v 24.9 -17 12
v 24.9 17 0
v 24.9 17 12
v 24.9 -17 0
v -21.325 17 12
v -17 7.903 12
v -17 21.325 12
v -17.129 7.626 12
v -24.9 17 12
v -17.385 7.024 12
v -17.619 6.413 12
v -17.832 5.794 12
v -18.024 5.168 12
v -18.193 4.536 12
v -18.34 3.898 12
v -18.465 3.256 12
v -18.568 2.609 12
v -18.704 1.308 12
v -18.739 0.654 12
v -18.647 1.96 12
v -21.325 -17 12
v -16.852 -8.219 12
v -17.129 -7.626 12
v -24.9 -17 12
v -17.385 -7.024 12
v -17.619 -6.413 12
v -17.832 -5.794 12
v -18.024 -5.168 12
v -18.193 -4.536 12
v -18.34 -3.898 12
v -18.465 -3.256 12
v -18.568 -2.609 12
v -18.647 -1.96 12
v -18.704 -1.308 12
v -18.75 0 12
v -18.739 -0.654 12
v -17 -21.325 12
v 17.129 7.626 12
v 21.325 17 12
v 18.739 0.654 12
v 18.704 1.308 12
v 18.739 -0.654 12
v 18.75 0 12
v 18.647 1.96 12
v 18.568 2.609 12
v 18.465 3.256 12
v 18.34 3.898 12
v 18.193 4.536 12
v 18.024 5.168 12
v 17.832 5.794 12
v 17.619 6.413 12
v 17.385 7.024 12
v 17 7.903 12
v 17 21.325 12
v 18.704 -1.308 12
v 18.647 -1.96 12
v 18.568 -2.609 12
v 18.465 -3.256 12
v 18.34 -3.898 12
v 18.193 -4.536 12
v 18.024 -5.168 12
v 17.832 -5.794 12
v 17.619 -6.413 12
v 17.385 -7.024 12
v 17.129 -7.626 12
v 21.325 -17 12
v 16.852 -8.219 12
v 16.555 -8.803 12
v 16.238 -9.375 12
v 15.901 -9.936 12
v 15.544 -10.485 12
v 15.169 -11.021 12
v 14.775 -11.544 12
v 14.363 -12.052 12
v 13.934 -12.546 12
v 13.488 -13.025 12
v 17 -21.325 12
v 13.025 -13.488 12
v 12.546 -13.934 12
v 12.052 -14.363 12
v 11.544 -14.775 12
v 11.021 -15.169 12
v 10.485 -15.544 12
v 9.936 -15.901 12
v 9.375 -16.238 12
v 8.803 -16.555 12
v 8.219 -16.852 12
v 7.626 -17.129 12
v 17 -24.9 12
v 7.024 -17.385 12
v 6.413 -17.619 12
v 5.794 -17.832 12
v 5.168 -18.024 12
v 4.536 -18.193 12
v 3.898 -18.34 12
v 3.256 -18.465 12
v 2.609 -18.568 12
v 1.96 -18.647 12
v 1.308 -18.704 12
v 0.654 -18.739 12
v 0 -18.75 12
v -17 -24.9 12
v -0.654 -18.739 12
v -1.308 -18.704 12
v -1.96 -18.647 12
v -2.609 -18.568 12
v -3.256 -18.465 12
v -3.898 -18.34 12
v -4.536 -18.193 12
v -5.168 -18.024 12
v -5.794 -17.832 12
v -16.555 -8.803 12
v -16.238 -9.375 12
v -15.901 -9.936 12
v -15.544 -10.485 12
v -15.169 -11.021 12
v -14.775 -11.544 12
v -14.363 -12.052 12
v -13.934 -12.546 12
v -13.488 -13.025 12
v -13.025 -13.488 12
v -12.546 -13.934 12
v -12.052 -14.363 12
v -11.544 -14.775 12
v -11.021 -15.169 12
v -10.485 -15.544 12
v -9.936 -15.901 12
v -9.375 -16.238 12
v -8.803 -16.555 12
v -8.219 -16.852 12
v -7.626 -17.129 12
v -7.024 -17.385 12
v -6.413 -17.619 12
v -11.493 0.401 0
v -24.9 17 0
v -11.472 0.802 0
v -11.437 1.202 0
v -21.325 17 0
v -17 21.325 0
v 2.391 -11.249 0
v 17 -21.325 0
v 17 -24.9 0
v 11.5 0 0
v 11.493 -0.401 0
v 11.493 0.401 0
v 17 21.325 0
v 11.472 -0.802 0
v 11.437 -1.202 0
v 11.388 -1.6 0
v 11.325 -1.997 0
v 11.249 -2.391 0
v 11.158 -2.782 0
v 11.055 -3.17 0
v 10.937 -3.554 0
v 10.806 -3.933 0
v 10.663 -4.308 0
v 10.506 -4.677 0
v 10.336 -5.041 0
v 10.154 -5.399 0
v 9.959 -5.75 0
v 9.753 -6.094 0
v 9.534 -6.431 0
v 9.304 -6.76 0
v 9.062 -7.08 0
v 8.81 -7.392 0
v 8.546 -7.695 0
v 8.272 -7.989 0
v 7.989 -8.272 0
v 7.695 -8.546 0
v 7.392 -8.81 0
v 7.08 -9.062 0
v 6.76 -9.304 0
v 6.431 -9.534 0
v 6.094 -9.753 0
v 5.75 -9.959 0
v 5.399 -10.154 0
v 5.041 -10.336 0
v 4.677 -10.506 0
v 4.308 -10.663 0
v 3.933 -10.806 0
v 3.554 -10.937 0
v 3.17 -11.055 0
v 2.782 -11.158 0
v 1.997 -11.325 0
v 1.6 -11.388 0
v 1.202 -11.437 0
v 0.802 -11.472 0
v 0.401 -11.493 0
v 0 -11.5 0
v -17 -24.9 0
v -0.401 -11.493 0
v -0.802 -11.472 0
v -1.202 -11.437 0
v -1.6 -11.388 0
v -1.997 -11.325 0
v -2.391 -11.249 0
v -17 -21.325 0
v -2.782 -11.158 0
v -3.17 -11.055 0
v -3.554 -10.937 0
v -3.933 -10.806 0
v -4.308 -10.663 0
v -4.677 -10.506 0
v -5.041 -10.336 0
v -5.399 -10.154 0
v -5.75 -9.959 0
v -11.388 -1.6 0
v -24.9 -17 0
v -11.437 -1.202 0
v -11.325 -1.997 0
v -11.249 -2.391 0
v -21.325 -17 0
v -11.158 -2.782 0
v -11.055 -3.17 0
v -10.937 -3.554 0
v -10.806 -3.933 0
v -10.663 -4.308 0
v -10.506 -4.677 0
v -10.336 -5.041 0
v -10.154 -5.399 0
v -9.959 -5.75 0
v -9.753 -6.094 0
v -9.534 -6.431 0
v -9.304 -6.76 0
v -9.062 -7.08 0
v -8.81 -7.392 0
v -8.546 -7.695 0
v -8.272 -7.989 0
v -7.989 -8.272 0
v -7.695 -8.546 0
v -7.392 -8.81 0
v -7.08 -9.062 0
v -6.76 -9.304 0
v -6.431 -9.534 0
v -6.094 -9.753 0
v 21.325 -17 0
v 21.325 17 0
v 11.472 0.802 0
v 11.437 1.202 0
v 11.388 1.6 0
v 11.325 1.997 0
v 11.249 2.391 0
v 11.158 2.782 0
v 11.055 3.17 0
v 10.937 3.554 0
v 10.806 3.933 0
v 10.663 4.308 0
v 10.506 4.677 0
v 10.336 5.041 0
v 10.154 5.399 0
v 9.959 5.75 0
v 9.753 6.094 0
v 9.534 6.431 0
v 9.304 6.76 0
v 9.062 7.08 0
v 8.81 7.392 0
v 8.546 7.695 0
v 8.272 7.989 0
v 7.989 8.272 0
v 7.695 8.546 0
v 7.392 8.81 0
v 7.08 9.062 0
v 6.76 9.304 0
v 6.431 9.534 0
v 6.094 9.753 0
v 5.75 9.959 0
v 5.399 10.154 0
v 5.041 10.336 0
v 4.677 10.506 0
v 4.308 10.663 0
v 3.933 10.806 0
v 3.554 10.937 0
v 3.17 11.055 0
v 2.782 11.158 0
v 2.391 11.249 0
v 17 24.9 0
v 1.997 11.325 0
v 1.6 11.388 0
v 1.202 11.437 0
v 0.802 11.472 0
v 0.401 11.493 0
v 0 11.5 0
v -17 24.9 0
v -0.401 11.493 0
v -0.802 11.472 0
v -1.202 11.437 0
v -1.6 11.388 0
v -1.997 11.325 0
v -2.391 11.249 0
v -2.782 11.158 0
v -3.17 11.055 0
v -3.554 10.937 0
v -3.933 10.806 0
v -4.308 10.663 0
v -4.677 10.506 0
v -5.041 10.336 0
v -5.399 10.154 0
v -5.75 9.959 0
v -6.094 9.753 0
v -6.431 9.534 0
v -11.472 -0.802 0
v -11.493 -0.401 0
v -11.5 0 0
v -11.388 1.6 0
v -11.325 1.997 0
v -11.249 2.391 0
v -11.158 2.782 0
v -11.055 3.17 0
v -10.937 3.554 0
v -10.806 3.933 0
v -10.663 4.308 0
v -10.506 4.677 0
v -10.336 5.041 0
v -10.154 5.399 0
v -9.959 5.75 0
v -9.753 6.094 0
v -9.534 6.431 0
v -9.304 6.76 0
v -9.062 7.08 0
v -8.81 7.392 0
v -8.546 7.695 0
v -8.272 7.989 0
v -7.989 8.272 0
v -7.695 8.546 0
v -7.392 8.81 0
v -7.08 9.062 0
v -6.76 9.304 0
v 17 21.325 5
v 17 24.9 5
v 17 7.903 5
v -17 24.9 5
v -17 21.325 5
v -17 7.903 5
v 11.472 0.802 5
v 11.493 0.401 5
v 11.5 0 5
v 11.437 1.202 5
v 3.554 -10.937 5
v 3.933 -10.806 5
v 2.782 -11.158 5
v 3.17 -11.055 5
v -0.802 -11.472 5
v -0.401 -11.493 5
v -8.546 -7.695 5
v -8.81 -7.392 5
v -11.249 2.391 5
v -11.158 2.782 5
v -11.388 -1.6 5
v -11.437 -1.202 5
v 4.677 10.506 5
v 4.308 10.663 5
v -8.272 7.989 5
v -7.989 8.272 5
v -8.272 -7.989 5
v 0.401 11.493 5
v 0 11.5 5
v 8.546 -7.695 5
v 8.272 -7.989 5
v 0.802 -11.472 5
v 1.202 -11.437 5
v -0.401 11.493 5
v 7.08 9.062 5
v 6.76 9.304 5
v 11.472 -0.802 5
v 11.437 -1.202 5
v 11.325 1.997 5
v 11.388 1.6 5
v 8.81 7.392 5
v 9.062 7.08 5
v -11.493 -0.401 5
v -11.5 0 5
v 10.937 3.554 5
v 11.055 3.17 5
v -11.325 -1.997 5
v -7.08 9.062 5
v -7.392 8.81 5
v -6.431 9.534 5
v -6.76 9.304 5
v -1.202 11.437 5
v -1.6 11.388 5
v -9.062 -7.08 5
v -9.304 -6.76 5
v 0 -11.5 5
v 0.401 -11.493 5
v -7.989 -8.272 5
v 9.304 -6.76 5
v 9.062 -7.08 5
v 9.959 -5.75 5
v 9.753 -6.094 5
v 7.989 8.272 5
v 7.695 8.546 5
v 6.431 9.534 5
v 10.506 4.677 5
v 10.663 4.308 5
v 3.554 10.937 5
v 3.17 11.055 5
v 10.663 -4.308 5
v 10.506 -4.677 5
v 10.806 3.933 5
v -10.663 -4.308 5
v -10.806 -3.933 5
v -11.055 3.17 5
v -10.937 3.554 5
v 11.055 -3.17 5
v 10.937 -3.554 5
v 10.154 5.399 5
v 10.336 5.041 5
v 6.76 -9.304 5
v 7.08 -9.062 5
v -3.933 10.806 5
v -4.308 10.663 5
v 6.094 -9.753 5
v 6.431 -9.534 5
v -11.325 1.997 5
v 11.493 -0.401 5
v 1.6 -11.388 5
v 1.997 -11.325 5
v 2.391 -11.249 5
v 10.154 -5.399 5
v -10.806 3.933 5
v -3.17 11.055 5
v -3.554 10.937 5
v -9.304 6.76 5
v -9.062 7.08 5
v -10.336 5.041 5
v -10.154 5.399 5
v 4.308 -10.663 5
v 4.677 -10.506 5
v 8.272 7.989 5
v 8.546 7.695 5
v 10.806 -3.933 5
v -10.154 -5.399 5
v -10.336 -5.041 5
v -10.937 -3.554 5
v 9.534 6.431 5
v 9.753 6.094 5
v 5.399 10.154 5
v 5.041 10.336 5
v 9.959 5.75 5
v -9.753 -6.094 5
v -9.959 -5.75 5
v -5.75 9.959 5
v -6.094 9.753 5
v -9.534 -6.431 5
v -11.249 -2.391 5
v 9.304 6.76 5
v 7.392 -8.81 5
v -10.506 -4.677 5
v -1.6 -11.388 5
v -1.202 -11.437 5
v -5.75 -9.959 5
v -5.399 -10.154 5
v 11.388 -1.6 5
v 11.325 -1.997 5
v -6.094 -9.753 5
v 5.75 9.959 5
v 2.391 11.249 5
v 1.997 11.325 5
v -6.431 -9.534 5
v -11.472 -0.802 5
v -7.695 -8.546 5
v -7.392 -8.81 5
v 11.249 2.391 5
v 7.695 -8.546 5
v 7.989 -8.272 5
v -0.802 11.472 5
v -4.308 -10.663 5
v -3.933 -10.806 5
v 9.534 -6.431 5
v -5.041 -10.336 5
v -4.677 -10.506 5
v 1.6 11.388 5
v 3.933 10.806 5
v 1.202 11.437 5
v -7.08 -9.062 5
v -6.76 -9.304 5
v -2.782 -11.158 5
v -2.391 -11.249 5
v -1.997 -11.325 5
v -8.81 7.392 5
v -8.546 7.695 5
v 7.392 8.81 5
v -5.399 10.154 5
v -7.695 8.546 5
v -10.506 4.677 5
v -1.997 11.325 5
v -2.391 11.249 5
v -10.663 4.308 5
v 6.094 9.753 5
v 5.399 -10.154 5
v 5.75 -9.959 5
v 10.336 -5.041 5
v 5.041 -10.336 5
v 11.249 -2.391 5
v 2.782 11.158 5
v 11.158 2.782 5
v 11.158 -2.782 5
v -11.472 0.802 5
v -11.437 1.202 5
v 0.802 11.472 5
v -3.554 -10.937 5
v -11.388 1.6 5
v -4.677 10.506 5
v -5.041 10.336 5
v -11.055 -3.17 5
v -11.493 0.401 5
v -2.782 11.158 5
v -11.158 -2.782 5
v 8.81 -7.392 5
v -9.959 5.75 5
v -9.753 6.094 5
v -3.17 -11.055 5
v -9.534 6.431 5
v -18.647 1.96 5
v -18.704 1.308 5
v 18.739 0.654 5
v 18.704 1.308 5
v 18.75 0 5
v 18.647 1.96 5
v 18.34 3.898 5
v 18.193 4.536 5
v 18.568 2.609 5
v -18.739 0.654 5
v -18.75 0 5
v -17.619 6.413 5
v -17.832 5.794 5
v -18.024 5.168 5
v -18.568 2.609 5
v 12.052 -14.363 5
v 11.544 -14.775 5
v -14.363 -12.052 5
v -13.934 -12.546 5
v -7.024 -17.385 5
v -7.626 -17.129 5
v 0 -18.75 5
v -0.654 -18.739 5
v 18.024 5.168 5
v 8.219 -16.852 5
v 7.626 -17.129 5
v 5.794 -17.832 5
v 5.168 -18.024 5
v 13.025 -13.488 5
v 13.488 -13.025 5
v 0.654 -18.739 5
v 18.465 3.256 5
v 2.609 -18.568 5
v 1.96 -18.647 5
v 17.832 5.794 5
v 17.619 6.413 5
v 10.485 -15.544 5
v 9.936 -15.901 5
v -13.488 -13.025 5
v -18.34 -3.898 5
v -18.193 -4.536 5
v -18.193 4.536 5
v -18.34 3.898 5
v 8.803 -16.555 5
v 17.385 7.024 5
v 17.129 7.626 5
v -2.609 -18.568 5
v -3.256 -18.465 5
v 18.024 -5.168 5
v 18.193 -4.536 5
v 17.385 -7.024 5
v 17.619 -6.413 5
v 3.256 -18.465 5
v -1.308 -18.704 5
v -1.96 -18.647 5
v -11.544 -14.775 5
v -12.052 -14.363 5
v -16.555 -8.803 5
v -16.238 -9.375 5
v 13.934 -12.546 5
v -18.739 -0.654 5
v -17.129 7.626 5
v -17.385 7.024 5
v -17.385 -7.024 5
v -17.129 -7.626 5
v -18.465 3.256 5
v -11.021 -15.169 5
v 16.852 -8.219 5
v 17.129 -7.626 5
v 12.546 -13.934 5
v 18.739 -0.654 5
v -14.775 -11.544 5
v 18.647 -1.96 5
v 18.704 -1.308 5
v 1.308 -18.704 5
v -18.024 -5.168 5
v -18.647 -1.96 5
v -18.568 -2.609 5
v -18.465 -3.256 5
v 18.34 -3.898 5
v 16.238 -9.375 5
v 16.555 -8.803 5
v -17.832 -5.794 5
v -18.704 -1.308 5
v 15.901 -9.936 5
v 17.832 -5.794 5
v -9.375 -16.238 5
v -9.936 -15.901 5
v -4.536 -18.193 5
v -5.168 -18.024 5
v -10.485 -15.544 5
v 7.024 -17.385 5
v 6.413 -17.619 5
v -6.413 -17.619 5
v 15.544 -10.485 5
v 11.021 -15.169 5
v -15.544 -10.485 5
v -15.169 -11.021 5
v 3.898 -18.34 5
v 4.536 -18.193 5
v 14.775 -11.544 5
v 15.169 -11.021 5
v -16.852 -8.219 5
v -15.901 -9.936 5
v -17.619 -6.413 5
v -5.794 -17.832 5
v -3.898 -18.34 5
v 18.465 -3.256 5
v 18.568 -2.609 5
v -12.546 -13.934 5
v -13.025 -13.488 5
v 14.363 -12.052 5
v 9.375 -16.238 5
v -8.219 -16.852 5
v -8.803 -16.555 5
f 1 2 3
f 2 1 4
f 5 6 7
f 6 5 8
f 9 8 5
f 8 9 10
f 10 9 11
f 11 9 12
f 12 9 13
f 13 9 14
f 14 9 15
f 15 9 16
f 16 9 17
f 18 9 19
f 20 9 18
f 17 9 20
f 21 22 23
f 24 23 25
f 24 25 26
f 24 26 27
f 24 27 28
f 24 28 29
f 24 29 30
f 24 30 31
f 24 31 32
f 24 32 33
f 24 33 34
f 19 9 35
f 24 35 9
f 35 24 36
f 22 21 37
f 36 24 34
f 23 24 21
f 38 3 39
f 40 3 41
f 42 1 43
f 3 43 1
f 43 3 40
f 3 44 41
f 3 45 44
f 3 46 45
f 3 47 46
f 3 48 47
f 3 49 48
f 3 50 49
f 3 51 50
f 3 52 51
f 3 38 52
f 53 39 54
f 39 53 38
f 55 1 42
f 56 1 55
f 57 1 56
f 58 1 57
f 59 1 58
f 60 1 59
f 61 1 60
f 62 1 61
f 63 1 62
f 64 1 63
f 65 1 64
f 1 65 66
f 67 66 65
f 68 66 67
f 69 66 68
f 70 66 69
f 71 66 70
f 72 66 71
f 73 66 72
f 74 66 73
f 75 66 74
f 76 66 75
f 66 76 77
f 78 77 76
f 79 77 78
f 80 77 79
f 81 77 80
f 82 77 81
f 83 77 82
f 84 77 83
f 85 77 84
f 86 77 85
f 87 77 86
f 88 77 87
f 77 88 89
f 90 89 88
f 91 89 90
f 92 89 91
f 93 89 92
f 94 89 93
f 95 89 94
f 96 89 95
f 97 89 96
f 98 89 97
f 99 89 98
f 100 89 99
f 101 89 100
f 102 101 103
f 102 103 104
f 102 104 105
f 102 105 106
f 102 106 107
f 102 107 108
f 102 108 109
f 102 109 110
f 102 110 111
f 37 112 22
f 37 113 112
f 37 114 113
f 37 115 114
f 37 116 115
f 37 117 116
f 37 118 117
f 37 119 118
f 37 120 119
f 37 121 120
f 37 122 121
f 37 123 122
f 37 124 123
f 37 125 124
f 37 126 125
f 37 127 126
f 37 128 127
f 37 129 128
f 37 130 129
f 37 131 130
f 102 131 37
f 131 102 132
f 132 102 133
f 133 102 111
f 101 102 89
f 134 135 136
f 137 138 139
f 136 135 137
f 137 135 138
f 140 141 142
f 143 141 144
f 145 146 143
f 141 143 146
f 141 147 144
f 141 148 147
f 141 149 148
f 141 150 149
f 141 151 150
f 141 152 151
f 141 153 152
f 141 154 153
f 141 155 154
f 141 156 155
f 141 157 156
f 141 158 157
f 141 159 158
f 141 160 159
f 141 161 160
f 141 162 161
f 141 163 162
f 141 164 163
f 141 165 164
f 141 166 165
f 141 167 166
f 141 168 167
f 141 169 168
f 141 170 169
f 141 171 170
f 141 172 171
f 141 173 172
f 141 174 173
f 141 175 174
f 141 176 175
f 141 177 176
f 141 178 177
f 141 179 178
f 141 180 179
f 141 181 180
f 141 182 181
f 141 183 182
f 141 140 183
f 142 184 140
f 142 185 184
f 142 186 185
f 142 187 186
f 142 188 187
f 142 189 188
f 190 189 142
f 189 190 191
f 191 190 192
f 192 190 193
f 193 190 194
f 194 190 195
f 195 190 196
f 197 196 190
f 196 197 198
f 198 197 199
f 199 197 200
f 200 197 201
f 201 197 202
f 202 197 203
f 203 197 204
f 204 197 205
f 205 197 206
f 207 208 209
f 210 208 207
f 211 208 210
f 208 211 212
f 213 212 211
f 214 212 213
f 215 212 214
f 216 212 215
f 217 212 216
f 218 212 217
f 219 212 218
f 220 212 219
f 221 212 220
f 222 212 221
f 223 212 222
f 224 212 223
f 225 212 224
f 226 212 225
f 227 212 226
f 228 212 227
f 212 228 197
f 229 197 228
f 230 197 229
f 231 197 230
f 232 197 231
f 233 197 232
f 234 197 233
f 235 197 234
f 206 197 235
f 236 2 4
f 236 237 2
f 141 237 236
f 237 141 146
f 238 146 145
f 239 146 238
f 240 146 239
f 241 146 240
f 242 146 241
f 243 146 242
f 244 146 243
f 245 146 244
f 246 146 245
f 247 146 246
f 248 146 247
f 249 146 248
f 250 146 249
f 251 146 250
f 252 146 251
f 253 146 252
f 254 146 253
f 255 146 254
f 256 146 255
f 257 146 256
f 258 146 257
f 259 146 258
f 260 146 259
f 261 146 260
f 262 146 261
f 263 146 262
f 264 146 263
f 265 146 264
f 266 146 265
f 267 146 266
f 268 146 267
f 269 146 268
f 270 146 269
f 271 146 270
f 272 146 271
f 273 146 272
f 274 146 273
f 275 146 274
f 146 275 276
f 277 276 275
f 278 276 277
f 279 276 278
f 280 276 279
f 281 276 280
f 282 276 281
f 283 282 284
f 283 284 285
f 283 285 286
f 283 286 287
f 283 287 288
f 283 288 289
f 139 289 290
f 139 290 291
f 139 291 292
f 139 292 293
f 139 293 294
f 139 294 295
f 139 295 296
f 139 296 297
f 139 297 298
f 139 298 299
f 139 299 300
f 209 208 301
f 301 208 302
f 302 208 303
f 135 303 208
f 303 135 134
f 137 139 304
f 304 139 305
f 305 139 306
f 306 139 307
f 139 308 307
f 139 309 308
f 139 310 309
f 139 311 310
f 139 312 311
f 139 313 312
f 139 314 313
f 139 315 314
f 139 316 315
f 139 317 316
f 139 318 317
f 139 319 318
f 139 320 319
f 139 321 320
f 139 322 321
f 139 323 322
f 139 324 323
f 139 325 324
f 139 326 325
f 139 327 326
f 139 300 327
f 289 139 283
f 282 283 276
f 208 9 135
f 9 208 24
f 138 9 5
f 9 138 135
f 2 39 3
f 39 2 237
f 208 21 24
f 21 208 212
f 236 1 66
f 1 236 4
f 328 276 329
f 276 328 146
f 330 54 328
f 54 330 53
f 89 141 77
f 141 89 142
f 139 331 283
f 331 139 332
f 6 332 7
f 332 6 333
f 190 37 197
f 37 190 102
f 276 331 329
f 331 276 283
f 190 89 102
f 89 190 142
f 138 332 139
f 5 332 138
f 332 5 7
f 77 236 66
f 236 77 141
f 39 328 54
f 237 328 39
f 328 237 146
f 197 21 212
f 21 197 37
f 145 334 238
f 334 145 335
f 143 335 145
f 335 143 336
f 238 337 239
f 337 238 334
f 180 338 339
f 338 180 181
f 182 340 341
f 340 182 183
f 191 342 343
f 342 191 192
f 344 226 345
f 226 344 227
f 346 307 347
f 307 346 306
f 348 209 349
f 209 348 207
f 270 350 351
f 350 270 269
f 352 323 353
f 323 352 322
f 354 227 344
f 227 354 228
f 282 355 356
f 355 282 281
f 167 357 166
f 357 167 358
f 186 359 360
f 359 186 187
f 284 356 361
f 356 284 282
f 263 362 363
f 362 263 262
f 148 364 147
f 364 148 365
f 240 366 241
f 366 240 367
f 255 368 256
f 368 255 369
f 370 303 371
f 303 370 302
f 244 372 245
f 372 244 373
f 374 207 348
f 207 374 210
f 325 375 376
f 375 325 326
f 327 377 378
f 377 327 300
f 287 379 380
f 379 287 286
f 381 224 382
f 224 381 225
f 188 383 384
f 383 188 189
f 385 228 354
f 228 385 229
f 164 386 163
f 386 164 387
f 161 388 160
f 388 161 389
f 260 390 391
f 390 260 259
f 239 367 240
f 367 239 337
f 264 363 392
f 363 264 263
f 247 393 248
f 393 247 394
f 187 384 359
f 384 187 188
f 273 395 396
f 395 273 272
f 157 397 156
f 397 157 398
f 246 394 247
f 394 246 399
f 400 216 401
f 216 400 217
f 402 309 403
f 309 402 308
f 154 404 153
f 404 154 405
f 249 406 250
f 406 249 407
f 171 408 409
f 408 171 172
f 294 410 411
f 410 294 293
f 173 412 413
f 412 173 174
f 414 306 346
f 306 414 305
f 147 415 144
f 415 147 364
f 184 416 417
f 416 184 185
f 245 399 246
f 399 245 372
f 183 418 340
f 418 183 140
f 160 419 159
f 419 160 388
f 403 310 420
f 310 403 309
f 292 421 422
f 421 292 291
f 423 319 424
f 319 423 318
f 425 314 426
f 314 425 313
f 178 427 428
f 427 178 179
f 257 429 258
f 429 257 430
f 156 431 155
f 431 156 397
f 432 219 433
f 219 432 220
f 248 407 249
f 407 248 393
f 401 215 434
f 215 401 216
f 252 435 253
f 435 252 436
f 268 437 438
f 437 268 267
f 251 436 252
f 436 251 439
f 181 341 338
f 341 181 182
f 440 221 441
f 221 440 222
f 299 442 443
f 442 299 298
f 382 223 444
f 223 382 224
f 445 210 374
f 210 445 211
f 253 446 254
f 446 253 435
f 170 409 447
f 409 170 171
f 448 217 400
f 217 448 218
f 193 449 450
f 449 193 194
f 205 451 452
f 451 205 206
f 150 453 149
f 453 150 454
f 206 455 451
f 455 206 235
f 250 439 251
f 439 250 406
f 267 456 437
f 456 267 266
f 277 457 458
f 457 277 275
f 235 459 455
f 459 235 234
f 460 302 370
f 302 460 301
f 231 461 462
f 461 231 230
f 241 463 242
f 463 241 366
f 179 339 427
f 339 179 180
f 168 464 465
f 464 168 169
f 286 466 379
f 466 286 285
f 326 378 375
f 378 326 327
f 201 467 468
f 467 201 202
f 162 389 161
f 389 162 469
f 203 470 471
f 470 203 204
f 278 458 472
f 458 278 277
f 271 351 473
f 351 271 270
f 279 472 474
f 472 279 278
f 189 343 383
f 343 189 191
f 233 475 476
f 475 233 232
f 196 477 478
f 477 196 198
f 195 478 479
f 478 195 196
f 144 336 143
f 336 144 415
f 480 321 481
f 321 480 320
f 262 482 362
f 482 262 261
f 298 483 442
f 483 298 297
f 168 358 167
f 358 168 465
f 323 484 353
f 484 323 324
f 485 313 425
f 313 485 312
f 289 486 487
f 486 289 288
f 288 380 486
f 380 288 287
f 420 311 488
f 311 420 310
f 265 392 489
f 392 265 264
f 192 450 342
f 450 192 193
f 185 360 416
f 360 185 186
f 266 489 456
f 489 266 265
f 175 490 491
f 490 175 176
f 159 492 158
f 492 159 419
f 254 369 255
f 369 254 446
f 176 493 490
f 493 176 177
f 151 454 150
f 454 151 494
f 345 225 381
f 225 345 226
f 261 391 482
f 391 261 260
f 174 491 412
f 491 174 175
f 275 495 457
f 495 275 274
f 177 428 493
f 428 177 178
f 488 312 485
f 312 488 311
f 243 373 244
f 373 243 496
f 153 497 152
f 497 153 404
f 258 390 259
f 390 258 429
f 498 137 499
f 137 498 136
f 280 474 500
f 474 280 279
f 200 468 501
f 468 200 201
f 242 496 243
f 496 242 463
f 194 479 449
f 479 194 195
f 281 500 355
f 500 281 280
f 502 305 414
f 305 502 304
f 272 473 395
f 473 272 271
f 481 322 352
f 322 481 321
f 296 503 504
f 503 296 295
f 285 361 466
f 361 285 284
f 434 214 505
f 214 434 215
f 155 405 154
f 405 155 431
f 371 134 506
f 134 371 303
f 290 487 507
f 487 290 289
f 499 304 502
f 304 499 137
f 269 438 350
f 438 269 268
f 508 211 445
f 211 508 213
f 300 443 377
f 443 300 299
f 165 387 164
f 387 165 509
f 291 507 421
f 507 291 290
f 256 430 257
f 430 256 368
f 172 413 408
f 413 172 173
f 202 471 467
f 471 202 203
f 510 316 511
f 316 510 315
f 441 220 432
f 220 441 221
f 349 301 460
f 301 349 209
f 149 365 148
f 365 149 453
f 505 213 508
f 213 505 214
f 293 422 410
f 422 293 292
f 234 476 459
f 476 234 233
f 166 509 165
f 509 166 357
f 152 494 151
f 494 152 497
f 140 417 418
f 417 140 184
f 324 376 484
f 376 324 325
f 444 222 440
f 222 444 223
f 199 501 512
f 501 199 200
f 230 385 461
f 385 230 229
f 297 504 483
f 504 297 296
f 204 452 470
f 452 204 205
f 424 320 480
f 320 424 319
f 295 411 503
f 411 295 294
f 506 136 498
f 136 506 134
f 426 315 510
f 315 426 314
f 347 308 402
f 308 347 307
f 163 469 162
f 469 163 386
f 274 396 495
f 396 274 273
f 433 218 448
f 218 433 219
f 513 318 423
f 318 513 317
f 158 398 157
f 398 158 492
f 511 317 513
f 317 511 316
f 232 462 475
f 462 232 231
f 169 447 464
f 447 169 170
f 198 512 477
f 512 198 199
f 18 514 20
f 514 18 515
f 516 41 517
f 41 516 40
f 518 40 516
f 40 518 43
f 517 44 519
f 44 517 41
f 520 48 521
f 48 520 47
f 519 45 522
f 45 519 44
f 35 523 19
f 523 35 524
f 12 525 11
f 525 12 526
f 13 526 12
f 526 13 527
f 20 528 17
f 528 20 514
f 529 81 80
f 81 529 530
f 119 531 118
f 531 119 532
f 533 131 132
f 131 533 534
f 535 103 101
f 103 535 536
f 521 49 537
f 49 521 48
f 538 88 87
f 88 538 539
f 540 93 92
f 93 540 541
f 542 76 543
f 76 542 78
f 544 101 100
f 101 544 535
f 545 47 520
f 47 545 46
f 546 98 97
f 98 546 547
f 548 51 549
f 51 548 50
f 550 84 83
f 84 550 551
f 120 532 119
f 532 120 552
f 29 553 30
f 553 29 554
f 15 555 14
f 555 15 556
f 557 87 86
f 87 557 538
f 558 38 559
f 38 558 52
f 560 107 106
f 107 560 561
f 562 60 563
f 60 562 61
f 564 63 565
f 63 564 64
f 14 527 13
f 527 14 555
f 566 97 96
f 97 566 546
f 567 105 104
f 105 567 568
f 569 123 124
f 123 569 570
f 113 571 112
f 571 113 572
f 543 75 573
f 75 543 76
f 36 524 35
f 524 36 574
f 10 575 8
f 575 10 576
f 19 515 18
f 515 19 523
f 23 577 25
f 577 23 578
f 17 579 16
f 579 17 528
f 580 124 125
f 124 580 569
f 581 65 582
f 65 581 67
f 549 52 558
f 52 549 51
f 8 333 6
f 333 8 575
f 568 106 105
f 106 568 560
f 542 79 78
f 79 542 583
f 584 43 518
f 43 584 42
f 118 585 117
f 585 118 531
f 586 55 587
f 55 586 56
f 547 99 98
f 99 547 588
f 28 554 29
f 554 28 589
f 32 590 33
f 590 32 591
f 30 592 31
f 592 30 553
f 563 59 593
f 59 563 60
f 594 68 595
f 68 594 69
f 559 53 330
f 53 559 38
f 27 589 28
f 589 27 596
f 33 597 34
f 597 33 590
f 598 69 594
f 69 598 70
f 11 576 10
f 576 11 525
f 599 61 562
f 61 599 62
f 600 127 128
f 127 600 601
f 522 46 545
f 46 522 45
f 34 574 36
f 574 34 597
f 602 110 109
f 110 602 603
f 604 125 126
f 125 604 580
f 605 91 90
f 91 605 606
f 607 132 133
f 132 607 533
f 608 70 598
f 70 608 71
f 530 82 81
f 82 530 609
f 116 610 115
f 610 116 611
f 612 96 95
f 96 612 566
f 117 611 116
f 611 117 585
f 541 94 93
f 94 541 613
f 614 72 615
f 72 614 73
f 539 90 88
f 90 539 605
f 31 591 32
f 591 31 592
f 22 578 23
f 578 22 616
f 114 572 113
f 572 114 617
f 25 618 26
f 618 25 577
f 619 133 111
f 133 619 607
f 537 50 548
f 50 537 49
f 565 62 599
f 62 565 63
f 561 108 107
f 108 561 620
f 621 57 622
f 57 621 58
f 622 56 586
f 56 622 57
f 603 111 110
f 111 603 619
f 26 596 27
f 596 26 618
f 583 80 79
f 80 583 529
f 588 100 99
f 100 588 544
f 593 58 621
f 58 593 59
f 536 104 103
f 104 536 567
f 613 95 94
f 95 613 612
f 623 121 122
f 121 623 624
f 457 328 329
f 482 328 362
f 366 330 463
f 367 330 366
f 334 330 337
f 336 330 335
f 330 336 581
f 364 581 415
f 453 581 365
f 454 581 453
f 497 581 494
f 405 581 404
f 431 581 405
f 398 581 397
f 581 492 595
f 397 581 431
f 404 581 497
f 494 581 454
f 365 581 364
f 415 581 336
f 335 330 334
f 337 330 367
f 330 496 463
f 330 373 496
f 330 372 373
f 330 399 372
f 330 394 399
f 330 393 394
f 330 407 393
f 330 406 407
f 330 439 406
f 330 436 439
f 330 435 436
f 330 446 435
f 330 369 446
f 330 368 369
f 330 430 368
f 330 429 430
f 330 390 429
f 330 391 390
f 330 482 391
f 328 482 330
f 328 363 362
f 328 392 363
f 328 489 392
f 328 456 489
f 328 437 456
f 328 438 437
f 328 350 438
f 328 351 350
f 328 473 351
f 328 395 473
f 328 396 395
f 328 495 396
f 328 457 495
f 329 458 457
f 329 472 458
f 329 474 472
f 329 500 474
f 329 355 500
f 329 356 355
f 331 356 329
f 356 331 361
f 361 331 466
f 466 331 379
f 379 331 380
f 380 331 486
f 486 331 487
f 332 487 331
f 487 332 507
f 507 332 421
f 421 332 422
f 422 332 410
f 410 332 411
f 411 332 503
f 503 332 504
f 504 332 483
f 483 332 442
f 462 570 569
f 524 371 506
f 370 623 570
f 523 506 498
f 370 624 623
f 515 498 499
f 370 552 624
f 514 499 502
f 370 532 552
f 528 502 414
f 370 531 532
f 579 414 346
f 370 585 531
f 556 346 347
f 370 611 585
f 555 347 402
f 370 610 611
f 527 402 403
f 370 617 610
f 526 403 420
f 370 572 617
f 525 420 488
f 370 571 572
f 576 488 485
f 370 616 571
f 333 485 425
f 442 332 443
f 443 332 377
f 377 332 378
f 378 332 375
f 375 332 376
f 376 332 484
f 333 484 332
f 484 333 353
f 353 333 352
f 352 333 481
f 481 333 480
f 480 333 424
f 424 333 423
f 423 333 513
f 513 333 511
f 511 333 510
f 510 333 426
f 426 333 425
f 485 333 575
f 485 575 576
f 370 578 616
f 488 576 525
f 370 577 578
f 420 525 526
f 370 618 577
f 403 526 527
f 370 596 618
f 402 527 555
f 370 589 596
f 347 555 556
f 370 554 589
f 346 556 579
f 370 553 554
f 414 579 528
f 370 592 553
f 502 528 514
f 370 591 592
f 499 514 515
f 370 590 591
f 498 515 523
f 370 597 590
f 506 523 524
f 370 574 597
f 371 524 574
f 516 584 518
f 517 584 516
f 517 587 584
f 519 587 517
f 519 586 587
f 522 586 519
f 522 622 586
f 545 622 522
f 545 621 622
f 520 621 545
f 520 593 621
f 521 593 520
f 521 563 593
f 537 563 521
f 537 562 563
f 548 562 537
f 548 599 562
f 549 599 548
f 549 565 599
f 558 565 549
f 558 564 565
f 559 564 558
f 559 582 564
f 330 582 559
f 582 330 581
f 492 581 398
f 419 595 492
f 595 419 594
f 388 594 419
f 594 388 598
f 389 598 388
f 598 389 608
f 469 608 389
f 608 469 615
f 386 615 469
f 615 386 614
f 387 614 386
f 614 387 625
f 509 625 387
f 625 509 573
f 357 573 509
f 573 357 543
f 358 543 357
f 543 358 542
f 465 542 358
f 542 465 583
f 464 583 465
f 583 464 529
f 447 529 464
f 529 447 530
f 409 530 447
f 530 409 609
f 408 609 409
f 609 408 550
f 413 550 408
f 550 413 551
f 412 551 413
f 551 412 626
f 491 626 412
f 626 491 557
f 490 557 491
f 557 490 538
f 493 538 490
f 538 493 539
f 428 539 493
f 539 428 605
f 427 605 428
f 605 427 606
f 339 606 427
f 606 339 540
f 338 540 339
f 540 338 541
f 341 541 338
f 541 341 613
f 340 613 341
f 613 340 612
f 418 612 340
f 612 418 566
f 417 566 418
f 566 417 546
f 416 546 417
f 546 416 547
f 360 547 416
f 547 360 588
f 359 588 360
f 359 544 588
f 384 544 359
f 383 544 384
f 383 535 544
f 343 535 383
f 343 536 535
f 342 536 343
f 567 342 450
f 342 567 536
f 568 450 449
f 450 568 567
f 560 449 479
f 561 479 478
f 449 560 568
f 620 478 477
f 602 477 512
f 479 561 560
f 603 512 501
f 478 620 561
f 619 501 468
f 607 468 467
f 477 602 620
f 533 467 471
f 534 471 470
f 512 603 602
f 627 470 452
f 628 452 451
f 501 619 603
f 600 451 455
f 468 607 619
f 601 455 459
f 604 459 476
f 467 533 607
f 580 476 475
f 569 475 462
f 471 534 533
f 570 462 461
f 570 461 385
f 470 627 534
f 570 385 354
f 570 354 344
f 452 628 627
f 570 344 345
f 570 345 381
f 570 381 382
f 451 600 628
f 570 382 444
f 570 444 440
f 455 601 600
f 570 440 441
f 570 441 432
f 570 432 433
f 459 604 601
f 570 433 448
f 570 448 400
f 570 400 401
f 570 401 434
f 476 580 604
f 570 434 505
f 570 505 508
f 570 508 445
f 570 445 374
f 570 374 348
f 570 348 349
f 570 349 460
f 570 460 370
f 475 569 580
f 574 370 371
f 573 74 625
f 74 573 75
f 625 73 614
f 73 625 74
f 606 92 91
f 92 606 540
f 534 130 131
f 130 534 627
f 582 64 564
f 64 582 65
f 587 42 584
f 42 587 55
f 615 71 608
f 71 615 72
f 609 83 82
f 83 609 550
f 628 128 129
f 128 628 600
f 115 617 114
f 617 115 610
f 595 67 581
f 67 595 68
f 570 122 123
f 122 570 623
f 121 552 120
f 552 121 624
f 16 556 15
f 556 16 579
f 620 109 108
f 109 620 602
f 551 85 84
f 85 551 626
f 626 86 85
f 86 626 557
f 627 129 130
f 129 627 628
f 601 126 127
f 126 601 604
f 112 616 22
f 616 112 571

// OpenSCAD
// Iris insert

IM_offset = 0.2;

/* [Hiden] */
a = 49.8;
b = 33.6;
c = 6.28;
d = 53.8;
h = 12; //holder height

iris_a = 23;
iris_h = 7;
iris_d = 37.1; 


module CubeInsert () {
    translate([0, 0, h/2])
    difference(){
        union() {   //basic insert design
            cube([a,b+2*IM_offset,h], center=true);
            cube([b+2*IM_offset,a,h], center=true);
            rotate(a=[0,0,45]){
                cube([c,d+2*IM_offset,h], center=true);
            }
            rotate(a=[0,0,-45]){
                cube([c,d+2*IM_offset,h], center=true);
            }
        }
    }
}


module IrisInsert() {
    difference(){
        CubeInsert();
        cylinder(d = iris_a, h = 20, $fn = 180);
        
        translate([0,0,h-iris_h])
            cylinder(d = iris_d + 2*IM_offset, h = iris_h, $fn = 180);
        
        translate([-(b+2*IM_offset)/2,0,h-iris_h])
            cube([b+2*IM_offset,b,iris_h]);
    }
}


IrisInsert();
